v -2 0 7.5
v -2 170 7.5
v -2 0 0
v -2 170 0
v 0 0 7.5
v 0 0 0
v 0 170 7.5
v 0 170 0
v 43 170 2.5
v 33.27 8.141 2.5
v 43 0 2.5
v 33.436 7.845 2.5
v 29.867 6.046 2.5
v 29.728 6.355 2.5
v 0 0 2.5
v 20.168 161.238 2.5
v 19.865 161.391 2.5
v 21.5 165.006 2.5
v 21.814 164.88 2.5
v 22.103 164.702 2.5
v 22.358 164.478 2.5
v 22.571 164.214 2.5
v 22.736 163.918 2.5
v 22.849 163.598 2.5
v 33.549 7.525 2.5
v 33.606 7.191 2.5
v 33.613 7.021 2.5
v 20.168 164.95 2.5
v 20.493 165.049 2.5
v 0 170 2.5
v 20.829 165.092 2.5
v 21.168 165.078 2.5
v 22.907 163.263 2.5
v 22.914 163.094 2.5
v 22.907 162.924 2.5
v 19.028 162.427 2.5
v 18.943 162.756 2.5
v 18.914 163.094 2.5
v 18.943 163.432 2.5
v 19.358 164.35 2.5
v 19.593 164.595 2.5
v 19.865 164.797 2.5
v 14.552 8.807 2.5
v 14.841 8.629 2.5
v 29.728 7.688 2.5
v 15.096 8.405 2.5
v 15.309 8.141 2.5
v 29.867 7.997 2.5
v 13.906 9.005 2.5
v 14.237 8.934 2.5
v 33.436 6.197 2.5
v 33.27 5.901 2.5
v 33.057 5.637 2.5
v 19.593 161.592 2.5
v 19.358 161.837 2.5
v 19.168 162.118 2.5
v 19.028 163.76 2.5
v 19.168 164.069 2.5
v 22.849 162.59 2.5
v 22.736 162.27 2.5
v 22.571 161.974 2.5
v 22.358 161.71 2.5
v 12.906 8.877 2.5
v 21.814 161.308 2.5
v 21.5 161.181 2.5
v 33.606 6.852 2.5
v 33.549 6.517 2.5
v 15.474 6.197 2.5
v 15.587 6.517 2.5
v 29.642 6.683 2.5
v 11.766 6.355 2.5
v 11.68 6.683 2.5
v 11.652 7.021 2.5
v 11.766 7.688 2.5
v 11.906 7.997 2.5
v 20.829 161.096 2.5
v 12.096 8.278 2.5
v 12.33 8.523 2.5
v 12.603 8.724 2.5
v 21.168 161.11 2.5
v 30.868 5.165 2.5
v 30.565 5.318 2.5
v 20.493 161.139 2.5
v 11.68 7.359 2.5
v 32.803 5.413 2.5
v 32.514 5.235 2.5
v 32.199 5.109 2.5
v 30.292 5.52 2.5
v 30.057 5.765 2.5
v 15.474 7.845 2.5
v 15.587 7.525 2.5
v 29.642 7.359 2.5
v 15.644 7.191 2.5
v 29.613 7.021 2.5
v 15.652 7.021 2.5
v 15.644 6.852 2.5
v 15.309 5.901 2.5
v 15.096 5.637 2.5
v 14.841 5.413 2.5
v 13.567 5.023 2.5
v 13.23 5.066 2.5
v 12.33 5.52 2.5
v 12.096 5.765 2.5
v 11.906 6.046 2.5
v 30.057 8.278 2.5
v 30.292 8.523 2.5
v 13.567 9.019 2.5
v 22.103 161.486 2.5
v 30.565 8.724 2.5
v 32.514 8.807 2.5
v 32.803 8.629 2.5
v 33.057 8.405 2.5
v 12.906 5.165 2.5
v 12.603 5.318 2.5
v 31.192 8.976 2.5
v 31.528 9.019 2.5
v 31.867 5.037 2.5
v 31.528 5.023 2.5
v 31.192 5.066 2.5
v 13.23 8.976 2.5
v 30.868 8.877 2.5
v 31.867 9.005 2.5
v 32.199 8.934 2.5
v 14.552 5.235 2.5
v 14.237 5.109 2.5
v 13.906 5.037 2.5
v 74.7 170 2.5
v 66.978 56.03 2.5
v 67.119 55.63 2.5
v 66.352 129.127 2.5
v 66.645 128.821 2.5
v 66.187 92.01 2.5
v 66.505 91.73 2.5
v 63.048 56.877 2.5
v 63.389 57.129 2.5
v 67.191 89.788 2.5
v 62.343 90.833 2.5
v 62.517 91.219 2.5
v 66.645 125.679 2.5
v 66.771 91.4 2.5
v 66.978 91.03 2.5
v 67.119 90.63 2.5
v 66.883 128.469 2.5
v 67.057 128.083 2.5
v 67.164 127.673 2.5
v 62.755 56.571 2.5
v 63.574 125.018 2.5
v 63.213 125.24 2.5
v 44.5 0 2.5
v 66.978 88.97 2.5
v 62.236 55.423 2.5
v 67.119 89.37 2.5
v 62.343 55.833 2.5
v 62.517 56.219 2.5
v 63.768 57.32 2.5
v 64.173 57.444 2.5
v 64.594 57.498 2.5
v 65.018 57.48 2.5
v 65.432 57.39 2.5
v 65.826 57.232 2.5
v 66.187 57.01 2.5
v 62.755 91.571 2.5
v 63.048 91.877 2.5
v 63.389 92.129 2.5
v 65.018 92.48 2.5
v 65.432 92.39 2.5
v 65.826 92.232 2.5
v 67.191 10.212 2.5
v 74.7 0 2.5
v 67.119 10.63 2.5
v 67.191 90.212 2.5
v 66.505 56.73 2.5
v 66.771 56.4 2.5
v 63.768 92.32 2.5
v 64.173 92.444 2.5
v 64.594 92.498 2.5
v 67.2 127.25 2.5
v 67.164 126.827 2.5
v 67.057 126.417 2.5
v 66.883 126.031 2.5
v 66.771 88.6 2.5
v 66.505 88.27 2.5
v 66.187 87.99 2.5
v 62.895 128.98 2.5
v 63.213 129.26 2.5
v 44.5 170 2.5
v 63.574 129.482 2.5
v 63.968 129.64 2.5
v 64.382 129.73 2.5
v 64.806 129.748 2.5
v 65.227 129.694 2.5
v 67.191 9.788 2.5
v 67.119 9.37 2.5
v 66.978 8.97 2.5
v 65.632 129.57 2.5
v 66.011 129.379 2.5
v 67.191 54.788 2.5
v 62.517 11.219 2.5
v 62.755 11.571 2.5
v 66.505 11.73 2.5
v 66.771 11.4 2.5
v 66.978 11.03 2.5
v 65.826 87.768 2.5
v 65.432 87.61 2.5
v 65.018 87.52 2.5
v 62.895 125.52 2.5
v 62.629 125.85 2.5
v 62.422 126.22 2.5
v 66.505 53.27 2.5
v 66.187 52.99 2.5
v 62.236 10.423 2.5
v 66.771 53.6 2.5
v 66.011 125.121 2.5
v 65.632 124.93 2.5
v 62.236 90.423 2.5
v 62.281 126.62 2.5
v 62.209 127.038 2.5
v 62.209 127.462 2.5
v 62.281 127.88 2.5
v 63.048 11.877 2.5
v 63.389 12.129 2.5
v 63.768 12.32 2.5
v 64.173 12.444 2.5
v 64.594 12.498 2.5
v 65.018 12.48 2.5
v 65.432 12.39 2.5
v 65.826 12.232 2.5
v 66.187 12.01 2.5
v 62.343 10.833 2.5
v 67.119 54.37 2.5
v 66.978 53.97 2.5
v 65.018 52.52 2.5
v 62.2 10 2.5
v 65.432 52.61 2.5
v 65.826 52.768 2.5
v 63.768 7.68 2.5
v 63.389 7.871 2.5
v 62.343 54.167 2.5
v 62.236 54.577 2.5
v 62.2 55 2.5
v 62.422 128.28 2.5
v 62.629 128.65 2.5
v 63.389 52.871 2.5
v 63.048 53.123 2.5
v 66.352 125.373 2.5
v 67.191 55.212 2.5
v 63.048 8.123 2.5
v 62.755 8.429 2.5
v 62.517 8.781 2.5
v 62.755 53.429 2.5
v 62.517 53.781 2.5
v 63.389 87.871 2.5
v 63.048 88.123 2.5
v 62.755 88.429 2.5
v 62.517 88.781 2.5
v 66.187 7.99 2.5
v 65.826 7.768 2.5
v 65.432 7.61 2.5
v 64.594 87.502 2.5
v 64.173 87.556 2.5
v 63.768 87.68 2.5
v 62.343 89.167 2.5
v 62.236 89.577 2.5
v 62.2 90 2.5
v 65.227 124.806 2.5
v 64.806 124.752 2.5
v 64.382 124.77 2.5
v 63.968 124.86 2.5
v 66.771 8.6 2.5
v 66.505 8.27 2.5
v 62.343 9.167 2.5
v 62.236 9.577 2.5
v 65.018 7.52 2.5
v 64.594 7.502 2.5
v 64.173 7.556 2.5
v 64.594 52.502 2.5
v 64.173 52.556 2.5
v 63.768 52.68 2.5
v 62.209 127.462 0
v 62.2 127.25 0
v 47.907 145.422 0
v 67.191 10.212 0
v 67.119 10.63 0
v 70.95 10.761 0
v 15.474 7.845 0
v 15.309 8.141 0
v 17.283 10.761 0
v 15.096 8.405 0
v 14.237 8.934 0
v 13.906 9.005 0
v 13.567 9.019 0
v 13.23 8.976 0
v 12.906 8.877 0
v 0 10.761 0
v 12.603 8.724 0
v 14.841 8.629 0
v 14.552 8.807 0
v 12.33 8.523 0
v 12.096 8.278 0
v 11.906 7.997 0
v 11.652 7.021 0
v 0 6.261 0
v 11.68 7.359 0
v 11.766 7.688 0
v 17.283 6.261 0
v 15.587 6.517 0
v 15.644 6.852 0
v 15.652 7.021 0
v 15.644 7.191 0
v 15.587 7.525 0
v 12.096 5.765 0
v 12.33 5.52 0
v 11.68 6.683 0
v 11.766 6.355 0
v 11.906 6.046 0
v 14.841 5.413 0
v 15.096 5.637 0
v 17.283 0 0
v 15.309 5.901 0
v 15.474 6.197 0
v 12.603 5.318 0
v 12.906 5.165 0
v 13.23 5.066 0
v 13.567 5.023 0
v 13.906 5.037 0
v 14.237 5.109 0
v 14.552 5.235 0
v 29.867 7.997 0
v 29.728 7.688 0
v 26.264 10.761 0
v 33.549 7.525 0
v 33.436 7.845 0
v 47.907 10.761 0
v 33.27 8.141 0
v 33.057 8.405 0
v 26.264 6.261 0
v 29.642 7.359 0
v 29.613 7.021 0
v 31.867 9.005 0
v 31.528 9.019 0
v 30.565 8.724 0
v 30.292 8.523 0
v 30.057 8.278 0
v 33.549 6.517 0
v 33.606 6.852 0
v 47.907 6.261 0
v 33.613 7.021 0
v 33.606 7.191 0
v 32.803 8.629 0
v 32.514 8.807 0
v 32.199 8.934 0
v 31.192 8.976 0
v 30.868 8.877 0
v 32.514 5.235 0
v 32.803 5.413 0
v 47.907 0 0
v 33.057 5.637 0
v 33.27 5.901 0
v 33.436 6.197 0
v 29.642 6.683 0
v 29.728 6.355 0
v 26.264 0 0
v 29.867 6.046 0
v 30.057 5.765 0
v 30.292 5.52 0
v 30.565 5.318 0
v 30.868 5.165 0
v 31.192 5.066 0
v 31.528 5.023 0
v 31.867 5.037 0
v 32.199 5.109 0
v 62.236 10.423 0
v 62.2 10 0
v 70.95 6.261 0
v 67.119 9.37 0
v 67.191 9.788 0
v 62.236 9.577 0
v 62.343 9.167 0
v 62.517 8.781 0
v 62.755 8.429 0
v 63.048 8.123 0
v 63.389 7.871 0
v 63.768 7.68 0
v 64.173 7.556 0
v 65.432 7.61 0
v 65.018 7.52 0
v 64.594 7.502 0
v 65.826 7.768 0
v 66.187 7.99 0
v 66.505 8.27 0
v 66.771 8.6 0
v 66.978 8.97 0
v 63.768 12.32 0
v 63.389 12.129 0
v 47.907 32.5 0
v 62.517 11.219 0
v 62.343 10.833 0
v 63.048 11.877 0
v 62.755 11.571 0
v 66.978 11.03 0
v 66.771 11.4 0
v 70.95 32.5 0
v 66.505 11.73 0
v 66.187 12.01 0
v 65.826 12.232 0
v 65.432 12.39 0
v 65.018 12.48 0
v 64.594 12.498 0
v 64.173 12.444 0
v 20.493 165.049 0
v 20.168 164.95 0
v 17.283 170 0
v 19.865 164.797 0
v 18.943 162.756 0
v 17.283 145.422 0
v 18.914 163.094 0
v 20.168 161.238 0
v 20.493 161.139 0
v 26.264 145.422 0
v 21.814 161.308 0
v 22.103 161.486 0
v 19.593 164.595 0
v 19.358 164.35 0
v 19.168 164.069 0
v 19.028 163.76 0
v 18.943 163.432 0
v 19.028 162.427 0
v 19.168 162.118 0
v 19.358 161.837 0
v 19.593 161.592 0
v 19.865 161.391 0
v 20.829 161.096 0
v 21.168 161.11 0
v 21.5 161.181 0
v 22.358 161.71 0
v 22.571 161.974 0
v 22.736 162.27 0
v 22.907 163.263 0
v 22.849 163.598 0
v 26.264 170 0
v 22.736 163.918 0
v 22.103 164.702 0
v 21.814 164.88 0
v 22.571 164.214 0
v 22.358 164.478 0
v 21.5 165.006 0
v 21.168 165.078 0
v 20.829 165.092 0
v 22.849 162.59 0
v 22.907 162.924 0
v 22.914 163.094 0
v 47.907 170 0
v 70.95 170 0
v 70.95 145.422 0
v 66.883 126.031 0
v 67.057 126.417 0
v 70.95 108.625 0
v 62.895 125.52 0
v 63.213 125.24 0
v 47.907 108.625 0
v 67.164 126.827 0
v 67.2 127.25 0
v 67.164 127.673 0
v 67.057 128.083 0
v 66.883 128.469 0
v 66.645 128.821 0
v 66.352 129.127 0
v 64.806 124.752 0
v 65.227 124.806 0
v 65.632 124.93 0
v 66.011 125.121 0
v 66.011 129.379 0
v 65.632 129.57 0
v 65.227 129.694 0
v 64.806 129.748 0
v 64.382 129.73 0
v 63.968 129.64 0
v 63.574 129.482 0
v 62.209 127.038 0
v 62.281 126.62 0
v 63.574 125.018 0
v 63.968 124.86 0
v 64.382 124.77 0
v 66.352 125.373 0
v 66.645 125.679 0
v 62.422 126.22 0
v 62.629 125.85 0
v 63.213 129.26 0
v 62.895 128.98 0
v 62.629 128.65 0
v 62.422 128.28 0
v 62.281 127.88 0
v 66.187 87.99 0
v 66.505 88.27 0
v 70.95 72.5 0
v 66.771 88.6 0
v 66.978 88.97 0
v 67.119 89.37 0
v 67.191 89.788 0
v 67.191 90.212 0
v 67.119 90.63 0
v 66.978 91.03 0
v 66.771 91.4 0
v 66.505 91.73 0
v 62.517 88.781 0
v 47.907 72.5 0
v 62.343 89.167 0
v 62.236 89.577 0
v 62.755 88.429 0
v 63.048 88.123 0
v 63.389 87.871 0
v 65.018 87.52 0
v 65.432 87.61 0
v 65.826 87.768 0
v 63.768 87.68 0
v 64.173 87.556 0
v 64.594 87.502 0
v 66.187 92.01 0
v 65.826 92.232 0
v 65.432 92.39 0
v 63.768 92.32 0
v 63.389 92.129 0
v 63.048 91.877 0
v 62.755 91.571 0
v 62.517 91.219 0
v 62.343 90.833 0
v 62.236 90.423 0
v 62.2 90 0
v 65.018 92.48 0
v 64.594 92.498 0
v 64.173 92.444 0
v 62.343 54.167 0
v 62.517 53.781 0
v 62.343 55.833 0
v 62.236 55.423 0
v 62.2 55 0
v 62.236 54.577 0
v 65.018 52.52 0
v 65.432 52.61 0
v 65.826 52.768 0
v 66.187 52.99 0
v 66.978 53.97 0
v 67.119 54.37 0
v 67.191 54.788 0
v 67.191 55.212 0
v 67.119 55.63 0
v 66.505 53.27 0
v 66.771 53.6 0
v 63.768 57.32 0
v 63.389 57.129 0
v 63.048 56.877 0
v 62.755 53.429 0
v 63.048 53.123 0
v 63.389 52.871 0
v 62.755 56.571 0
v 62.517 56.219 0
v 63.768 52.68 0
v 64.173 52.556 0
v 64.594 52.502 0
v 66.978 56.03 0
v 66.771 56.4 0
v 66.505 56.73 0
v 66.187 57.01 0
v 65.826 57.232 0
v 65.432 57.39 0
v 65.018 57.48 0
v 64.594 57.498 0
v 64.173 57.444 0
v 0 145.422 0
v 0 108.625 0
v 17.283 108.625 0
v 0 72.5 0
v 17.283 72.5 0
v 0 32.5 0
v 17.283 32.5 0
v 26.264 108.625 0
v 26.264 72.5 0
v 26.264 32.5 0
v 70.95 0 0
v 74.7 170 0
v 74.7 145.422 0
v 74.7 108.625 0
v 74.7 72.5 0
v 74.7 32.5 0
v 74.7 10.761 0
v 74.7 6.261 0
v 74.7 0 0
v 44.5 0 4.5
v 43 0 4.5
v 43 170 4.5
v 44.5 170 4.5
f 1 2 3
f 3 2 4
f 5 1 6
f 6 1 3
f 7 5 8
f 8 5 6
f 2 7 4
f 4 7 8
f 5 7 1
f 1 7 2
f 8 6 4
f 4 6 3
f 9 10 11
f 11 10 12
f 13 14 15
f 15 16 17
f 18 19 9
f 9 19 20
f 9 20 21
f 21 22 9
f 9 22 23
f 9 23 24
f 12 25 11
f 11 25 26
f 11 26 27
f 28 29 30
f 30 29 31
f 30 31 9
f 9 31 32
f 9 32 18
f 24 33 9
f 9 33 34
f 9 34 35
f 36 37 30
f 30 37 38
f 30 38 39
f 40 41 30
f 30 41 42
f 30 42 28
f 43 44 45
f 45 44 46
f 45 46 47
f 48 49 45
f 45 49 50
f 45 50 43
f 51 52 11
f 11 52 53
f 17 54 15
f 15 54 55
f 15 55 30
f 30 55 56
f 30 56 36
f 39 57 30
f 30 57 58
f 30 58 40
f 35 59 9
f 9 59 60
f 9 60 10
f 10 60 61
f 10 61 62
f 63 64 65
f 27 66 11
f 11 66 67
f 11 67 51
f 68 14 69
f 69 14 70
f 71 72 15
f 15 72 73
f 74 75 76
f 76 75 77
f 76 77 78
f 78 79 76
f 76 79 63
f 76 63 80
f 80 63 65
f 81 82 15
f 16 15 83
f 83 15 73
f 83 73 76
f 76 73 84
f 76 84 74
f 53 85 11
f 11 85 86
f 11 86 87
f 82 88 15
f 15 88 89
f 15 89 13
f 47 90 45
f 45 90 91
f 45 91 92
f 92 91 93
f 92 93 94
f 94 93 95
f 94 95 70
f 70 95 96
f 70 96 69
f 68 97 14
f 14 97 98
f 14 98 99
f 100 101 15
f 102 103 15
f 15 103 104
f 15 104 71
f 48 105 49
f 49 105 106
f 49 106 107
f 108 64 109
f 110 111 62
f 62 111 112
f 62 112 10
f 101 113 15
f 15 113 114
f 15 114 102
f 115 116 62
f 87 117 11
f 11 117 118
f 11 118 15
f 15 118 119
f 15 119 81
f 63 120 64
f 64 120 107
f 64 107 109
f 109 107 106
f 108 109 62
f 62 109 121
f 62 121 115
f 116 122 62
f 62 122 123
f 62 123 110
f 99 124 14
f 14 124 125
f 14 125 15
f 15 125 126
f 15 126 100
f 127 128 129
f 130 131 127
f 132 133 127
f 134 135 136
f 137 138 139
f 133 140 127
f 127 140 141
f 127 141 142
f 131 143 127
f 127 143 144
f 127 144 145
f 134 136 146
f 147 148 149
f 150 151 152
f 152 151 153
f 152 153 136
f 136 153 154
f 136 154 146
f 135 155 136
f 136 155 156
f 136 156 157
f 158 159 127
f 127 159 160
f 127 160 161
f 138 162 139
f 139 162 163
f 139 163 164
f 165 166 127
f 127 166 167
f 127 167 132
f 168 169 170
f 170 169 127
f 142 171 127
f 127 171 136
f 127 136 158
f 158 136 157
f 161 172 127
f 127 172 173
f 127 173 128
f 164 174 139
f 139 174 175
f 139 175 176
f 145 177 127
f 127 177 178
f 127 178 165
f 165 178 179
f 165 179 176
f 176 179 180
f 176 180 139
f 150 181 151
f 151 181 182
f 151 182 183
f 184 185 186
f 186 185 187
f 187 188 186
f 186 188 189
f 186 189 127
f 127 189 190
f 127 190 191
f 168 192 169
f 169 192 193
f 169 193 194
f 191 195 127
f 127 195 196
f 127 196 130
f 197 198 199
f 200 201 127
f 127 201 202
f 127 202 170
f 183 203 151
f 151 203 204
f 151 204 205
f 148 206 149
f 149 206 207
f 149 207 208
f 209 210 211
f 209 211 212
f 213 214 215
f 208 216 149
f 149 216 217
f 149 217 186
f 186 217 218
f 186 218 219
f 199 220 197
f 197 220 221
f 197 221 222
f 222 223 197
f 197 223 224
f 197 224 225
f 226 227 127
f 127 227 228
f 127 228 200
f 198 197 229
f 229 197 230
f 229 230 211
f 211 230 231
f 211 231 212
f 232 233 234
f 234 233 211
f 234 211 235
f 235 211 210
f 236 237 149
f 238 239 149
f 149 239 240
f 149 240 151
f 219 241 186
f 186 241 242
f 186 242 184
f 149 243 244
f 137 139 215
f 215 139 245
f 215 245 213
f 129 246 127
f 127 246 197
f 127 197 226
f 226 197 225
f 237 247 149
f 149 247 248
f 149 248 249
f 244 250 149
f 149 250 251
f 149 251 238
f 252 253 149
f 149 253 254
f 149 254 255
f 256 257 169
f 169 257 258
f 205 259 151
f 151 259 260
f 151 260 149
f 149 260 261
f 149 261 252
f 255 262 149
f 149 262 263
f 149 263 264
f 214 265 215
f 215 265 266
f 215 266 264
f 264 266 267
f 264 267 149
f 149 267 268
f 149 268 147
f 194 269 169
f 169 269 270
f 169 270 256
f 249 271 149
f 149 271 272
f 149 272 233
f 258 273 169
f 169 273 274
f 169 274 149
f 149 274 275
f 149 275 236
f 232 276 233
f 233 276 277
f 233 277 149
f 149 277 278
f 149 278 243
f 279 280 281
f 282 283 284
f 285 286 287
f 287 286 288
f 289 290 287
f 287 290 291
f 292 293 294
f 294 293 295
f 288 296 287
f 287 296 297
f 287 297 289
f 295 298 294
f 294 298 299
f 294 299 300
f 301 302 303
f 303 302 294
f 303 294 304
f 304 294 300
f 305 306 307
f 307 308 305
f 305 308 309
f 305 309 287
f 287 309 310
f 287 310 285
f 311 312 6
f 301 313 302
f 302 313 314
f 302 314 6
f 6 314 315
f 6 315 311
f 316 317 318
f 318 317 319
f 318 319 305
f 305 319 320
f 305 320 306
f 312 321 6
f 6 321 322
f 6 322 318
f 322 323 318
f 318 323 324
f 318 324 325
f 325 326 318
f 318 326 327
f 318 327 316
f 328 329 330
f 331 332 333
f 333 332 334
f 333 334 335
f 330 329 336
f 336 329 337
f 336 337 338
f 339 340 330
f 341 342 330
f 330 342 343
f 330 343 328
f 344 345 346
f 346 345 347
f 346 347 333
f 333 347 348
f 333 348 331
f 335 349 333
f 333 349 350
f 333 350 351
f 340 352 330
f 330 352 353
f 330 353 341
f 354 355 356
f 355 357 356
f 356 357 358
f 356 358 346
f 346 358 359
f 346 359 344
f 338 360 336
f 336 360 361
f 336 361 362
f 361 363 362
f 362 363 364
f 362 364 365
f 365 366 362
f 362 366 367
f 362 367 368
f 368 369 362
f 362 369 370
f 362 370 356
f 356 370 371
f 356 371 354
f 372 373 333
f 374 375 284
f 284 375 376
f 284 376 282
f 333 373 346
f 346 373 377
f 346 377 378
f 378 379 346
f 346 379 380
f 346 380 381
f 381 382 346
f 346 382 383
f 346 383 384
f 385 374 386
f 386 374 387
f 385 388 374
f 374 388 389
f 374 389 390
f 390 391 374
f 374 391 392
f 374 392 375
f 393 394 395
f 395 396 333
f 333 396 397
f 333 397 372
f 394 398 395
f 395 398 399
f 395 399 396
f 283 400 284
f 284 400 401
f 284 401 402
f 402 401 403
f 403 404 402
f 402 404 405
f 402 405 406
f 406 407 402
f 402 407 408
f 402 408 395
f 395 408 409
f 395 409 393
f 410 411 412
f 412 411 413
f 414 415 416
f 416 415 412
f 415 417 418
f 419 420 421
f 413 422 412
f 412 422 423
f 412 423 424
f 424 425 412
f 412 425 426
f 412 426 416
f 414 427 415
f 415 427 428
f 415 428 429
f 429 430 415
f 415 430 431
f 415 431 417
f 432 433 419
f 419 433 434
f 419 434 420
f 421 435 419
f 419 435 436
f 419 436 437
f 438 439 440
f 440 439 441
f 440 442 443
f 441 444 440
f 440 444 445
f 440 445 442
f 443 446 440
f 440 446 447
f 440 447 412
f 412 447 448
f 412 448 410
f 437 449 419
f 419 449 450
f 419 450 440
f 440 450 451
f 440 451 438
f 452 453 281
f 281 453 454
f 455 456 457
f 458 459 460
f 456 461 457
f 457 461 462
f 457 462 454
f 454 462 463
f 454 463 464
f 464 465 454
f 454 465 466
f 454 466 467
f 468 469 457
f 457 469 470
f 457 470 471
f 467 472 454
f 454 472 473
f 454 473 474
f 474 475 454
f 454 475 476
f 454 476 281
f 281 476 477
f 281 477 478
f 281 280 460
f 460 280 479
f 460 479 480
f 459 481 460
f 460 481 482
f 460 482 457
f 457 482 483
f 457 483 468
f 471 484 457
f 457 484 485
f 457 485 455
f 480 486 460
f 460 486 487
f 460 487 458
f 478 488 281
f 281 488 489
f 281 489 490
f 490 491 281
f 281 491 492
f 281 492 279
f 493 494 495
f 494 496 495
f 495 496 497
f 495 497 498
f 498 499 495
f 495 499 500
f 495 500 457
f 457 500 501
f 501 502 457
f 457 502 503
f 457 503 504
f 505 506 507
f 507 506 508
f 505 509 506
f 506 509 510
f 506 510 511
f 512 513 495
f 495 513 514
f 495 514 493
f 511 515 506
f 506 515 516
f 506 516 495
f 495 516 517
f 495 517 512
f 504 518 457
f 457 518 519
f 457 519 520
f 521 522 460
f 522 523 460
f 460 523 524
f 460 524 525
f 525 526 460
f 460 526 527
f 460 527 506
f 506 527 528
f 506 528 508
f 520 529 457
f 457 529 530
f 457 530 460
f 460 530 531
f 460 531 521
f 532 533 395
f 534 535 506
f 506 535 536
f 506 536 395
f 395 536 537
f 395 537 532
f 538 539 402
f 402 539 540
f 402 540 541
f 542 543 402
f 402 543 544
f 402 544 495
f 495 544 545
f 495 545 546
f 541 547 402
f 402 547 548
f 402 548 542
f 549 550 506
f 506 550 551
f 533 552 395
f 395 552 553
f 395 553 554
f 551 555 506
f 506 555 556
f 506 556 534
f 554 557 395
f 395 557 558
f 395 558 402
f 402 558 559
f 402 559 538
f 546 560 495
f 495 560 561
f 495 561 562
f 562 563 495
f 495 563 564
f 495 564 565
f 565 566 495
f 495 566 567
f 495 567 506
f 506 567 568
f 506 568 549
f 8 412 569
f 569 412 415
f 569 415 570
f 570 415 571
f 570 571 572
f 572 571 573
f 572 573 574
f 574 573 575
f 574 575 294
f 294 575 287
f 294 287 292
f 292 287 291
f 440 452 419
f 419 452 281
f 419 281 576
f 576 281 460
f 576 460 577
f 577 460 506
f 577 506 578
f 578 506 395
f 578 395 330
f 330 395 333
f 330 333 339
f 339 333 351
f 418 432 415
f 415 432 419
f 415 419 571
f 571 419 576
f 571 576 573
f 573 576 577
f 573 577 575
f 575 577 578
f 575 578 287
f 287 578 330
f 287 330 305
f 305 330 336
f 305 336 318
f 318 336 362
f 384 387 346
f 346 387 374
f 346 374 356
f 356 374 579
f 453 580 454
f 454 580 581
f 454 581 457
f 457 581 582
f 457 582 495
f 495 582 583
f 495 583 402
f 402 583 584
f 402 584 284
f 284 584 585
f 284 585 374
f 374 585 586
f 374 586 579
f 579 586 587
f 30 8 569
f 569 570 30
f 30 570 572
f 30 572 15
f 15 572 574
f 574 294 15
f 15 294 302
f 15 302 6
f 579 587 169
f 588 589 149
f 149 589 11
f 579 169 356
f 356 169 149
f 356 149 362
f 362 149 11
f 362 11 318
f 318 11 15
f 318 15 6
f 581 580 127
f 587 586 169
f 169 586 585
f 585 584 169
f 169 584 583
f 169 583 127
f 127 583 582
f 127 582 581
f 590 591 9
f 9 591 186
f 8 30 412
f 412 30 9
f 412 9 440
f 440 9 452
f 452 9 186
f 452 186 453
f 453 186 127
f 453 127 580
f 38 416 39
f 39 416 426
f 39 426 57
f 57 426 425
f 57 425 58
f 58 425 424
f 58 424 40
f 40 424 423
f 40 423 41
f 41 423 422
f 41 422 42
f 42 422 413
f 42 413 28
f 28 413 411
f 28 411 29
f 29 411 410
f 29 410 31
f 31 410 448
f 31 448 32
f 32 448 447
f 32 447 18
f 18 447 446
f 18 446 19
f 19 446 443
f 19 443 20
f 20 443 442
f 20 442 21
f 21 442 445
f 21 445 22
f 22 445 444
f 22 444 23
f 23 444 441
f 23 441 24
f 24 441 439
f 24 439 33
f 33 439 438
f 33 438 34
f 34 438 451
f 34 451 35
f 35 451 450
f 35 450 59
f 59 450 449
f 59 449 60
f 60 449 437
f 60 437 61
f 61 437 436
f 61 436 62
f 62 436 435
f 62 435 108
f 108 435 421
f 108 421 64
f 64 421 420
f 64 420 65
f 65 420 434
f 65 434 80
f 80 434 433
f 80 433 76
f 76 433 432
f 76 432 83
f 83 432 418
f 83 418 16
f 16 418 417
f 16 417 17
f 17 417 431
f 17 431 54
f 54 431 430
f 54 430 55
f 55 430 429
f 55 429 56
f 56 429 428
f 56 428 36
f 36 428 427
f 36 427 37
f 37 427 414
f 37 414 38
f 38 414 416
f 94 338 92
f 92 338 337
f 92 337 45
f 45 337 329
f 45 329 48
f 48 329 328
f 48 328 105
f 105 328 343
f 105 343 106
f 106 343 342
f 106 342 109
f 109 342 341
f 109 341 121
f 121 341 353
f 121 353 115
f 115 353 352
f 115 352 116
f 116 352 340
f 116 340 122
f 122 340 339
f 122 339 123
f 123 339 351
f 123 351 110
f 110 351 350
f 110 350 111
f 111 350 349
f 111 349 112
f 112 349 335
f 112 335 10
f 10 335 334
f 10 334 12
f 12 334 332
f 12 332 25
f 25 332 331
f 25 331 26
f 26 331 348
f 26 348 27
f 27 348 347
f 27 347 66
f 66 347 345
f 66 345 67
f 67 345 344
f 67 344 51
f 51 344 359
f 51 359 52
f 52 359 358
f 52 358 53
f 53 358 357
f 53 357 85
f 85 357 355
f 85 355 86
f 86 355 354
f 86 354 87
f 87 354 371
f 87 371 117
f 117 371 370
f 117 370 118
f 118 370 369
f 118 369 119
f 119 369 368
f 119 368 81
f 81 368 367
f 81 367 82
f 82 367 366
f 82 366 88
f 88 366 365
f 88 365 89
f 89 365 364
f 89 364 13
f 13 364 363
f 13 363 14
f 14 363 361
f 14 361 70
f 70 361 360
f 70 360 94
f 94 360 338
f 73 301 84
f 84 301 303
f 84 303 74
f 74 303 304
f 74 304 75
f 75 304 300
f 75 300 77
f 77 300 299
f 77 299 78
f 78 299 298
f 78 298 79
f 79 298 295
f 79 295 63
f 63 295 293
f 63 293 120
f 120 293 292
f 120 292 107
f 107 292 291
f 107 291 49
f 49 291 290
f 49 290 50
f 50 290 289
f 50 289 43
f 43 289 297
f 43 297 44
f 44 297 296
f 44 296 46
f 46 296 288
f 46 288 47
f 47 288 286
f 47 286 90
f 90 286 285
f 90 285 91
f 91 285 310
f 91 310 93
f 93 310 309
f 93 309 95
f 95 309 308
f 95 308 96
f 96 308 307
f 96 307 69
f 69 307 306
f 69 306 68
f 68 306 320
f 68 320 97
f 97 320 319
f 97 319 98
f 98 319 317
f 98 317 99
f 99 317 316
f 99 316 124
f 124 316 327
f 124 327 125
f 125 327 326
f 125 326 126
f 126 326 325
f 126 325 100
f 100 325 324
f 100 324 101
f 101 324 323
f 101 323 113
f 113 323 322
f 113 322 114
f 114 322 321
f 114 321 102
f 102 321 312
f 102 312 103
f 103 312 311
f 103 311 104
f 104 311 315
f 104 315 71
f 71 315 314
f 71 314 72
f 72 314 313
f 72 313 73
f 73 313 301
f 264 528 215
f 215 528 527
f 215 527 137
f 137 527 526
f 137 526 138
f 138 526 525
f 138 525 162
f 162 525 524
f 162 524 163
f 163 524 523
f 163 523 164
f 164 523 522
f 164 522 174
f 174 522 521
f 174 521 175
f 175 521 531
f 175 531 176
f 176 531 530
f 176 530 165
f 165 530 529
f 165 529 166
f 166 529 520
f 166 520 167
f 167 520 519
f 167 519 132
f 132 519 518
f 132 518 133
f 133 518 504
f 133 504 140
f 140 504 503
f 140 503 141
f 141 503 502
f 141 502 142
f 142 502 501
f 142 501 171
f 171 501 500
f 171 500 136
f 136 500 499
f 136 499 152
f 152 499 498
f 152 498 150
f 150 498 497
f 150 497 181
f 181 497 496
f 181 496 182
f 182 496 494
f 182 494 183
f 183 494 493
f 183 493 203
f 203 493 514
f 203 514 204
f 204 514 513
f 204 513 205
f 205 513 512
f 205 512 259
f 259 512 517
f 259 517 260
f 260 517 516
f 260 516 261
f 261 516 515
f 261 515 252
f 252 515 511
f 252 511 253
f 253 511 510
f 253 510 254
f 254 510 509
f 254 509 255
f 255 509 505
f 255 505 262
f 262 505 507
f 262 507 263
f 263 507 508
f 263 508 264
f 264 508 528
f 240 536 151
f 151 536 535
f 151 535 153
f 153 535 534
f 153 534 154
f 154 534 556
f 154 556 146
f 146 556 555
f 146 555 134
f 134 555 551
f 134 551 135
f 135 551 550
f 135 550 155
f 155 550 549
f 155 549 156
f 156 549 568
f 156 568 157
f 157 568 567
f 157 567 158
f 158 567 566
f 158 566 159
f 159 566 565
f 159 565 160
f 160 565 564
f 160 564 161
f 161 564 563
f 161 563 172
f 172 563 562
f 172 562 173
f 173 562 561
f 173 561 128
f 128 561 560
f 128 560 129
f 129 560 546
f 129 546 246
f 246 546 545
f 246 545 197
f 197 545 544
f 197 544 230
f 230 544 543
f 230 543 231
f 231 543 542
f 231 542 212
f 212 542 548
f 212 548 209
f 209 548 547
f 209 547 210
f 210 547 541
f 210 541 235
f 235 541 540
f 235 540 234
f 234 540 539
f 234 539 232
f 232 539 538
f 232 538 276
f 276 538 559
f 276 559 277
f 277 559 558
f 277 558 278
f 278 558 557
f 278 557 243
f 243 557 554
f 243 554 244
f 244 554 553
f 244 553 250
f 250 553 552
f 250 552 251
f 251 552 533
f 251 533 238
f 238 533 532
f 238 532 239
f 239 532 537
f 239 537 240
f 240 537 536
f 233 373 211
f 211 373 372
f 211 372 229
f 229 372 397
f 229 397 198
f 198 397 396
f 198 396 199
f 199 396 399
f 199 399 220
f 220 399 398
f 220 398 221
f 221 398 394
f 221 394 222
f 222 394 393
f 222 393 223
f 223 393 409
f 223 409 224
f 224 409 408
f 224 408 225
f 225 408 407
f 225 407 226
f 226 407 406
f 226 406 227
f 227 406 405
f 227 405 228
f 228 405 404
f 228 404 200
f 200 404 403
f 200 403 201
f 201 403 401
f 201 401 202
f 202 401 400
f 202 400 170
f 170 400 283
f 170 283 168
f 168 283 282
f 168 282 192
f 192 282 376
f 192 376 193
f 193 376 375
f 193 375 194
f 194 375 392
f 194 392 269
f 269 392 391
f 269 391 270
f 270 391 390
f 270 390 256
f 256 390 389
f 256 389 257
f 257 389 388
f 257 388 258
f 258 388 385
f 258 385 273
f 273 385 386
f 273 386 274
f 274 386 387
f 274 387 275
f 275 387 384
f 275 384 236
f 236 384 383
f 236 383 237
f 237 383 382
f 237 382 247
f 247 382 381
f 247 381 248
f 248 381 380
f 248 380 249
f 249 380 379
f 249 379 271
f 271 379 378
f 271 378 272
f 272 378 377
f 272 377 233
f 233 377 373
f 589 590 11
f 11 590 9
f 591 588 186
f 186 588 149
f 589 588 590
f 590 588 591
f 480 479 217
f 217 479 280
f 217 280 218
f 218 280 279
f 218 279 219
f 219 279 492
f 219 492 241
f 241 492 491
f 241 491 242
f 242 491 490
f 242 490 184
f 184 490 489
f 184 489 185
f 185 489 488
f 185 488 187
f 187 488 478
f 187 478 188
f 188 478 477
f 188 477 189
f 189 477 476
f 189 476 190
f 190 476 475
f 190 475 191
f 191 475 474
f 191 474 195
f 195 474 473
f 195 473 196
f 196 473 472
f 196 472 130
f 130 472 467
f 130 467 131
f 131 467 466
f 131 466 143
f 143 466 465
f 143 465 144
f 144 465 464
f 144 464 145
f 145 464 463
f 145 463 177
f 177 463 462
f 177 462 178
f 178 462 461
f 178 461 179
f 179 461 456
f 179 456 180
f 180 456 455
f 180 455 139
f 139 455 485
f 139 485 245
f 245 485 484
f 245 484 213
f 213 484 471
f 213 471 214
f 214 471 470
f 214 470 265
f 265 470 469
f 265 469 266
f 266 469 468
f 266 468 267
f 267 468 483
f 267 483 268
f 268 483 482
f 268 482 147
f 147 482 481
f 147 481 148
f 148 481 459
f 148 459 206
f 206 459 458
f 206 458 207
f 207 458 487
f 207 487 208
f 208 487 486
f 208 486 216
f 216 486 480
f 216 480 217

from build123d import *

# Parameters (mm, degrees)
SKETCH1_W           = 74.7
SKETCH1_H           = 170
SKETCH1_R           = 2
BOSS_EXTRUDE1_DEPTH = 2.5
BOSS_EXTRUDE2_START = -2.5
SKETCH2_W           = 2
SKETCH2_H           = 170
BOSS_EXTRUDE2_DEPTH = 7.5
SKETCH3_R           = 2.5
CUT_EXTRUDE1_DEPTH  = 5
SKETCH4_W           = 1.5
SKETCH4_H           = 170
BOSS_EXTRUDE3_DEPTH = 2
SKETCH5_R           = 2.5
CUT_EXTRUDE2_DEPTH  = 12


with BuildPart() as part:
    # Sketch1 → Boss-Extrude1 (new body)
    with BuildSketch(Plane.XY):
        with Locations((37.35, 85)):
            Rectangle(SKETCH1_W, SKETCH1_H)
        with Locations((20.913881882, 163.093745052)):
            Circle(SKETCH1_R, mode=Mode.SUBTRACT)
        with Locations((31.61325859, 7.021261507)):
            Circle(SKETCH1_R, mode=Mode.SUBTRACT)
        with Locations((13.651594244, 7.021261507)):
            Circle(SKETCH1_R, mode=Mode.SUBTRACT)
    extrude(amount=BOSS_EXTRUDE1_DEPTH)

    # Sketch3 → Cut-Extrude1 (cut)
    with BuildSketch(Plane(origin=(0, 0, 0), x_dir=(-1, 0, 0), z_dir=(0, 0, -1))):
        with Locations((-64.7, 10)):
            Circle(SKETCH3_R)
        with Locations((-64.7, 55)):
            Circle(SKETCH3_R)
        with Locations((-64.7, 90)):
            Circle(SKETCH3_R)
    extrude(amount=-CUT_EXTRUDE1_DEPTH, mode=Mode.SUBTRACT)

    # Sketch4 → Boss-Extrude3 (add)
    with BuildSketch(Plane.XY.offset(2.5)):
        with Locations((43.75, 85)):
            Rectangle(SKETCH4_W, SKETCH4_H)
    extrude(amount=BOSS_EXTRUDE3_DEPTH)

    # Sketch5 → Cut-Extrude2 (cut)
    with BuildSketch(Plane.XY.offset(2.5)):
        with Locations((64.7, 127.25)):
            Circle(SKETCH5_R)
    extrude(amount=-CUT_EXTRUDE2_DEPTH, mode=Mode.SUBTRACT)


with BuildPart() as body_2:
    # Sketch2 → Boss-Extrude2 (new body)
    with BuildSketch(Plane.XY.offset(2.5).offset(BOSS_EXTRUDE2_START)):
        with Locations((-1, 85)):
            Rectangle(SKETCH2_W, SKETCH2_H)
    extrude(amount=BOSS_EXTRUDE2_DEPTH)


solid = Compound([part.part, body_2.part])
